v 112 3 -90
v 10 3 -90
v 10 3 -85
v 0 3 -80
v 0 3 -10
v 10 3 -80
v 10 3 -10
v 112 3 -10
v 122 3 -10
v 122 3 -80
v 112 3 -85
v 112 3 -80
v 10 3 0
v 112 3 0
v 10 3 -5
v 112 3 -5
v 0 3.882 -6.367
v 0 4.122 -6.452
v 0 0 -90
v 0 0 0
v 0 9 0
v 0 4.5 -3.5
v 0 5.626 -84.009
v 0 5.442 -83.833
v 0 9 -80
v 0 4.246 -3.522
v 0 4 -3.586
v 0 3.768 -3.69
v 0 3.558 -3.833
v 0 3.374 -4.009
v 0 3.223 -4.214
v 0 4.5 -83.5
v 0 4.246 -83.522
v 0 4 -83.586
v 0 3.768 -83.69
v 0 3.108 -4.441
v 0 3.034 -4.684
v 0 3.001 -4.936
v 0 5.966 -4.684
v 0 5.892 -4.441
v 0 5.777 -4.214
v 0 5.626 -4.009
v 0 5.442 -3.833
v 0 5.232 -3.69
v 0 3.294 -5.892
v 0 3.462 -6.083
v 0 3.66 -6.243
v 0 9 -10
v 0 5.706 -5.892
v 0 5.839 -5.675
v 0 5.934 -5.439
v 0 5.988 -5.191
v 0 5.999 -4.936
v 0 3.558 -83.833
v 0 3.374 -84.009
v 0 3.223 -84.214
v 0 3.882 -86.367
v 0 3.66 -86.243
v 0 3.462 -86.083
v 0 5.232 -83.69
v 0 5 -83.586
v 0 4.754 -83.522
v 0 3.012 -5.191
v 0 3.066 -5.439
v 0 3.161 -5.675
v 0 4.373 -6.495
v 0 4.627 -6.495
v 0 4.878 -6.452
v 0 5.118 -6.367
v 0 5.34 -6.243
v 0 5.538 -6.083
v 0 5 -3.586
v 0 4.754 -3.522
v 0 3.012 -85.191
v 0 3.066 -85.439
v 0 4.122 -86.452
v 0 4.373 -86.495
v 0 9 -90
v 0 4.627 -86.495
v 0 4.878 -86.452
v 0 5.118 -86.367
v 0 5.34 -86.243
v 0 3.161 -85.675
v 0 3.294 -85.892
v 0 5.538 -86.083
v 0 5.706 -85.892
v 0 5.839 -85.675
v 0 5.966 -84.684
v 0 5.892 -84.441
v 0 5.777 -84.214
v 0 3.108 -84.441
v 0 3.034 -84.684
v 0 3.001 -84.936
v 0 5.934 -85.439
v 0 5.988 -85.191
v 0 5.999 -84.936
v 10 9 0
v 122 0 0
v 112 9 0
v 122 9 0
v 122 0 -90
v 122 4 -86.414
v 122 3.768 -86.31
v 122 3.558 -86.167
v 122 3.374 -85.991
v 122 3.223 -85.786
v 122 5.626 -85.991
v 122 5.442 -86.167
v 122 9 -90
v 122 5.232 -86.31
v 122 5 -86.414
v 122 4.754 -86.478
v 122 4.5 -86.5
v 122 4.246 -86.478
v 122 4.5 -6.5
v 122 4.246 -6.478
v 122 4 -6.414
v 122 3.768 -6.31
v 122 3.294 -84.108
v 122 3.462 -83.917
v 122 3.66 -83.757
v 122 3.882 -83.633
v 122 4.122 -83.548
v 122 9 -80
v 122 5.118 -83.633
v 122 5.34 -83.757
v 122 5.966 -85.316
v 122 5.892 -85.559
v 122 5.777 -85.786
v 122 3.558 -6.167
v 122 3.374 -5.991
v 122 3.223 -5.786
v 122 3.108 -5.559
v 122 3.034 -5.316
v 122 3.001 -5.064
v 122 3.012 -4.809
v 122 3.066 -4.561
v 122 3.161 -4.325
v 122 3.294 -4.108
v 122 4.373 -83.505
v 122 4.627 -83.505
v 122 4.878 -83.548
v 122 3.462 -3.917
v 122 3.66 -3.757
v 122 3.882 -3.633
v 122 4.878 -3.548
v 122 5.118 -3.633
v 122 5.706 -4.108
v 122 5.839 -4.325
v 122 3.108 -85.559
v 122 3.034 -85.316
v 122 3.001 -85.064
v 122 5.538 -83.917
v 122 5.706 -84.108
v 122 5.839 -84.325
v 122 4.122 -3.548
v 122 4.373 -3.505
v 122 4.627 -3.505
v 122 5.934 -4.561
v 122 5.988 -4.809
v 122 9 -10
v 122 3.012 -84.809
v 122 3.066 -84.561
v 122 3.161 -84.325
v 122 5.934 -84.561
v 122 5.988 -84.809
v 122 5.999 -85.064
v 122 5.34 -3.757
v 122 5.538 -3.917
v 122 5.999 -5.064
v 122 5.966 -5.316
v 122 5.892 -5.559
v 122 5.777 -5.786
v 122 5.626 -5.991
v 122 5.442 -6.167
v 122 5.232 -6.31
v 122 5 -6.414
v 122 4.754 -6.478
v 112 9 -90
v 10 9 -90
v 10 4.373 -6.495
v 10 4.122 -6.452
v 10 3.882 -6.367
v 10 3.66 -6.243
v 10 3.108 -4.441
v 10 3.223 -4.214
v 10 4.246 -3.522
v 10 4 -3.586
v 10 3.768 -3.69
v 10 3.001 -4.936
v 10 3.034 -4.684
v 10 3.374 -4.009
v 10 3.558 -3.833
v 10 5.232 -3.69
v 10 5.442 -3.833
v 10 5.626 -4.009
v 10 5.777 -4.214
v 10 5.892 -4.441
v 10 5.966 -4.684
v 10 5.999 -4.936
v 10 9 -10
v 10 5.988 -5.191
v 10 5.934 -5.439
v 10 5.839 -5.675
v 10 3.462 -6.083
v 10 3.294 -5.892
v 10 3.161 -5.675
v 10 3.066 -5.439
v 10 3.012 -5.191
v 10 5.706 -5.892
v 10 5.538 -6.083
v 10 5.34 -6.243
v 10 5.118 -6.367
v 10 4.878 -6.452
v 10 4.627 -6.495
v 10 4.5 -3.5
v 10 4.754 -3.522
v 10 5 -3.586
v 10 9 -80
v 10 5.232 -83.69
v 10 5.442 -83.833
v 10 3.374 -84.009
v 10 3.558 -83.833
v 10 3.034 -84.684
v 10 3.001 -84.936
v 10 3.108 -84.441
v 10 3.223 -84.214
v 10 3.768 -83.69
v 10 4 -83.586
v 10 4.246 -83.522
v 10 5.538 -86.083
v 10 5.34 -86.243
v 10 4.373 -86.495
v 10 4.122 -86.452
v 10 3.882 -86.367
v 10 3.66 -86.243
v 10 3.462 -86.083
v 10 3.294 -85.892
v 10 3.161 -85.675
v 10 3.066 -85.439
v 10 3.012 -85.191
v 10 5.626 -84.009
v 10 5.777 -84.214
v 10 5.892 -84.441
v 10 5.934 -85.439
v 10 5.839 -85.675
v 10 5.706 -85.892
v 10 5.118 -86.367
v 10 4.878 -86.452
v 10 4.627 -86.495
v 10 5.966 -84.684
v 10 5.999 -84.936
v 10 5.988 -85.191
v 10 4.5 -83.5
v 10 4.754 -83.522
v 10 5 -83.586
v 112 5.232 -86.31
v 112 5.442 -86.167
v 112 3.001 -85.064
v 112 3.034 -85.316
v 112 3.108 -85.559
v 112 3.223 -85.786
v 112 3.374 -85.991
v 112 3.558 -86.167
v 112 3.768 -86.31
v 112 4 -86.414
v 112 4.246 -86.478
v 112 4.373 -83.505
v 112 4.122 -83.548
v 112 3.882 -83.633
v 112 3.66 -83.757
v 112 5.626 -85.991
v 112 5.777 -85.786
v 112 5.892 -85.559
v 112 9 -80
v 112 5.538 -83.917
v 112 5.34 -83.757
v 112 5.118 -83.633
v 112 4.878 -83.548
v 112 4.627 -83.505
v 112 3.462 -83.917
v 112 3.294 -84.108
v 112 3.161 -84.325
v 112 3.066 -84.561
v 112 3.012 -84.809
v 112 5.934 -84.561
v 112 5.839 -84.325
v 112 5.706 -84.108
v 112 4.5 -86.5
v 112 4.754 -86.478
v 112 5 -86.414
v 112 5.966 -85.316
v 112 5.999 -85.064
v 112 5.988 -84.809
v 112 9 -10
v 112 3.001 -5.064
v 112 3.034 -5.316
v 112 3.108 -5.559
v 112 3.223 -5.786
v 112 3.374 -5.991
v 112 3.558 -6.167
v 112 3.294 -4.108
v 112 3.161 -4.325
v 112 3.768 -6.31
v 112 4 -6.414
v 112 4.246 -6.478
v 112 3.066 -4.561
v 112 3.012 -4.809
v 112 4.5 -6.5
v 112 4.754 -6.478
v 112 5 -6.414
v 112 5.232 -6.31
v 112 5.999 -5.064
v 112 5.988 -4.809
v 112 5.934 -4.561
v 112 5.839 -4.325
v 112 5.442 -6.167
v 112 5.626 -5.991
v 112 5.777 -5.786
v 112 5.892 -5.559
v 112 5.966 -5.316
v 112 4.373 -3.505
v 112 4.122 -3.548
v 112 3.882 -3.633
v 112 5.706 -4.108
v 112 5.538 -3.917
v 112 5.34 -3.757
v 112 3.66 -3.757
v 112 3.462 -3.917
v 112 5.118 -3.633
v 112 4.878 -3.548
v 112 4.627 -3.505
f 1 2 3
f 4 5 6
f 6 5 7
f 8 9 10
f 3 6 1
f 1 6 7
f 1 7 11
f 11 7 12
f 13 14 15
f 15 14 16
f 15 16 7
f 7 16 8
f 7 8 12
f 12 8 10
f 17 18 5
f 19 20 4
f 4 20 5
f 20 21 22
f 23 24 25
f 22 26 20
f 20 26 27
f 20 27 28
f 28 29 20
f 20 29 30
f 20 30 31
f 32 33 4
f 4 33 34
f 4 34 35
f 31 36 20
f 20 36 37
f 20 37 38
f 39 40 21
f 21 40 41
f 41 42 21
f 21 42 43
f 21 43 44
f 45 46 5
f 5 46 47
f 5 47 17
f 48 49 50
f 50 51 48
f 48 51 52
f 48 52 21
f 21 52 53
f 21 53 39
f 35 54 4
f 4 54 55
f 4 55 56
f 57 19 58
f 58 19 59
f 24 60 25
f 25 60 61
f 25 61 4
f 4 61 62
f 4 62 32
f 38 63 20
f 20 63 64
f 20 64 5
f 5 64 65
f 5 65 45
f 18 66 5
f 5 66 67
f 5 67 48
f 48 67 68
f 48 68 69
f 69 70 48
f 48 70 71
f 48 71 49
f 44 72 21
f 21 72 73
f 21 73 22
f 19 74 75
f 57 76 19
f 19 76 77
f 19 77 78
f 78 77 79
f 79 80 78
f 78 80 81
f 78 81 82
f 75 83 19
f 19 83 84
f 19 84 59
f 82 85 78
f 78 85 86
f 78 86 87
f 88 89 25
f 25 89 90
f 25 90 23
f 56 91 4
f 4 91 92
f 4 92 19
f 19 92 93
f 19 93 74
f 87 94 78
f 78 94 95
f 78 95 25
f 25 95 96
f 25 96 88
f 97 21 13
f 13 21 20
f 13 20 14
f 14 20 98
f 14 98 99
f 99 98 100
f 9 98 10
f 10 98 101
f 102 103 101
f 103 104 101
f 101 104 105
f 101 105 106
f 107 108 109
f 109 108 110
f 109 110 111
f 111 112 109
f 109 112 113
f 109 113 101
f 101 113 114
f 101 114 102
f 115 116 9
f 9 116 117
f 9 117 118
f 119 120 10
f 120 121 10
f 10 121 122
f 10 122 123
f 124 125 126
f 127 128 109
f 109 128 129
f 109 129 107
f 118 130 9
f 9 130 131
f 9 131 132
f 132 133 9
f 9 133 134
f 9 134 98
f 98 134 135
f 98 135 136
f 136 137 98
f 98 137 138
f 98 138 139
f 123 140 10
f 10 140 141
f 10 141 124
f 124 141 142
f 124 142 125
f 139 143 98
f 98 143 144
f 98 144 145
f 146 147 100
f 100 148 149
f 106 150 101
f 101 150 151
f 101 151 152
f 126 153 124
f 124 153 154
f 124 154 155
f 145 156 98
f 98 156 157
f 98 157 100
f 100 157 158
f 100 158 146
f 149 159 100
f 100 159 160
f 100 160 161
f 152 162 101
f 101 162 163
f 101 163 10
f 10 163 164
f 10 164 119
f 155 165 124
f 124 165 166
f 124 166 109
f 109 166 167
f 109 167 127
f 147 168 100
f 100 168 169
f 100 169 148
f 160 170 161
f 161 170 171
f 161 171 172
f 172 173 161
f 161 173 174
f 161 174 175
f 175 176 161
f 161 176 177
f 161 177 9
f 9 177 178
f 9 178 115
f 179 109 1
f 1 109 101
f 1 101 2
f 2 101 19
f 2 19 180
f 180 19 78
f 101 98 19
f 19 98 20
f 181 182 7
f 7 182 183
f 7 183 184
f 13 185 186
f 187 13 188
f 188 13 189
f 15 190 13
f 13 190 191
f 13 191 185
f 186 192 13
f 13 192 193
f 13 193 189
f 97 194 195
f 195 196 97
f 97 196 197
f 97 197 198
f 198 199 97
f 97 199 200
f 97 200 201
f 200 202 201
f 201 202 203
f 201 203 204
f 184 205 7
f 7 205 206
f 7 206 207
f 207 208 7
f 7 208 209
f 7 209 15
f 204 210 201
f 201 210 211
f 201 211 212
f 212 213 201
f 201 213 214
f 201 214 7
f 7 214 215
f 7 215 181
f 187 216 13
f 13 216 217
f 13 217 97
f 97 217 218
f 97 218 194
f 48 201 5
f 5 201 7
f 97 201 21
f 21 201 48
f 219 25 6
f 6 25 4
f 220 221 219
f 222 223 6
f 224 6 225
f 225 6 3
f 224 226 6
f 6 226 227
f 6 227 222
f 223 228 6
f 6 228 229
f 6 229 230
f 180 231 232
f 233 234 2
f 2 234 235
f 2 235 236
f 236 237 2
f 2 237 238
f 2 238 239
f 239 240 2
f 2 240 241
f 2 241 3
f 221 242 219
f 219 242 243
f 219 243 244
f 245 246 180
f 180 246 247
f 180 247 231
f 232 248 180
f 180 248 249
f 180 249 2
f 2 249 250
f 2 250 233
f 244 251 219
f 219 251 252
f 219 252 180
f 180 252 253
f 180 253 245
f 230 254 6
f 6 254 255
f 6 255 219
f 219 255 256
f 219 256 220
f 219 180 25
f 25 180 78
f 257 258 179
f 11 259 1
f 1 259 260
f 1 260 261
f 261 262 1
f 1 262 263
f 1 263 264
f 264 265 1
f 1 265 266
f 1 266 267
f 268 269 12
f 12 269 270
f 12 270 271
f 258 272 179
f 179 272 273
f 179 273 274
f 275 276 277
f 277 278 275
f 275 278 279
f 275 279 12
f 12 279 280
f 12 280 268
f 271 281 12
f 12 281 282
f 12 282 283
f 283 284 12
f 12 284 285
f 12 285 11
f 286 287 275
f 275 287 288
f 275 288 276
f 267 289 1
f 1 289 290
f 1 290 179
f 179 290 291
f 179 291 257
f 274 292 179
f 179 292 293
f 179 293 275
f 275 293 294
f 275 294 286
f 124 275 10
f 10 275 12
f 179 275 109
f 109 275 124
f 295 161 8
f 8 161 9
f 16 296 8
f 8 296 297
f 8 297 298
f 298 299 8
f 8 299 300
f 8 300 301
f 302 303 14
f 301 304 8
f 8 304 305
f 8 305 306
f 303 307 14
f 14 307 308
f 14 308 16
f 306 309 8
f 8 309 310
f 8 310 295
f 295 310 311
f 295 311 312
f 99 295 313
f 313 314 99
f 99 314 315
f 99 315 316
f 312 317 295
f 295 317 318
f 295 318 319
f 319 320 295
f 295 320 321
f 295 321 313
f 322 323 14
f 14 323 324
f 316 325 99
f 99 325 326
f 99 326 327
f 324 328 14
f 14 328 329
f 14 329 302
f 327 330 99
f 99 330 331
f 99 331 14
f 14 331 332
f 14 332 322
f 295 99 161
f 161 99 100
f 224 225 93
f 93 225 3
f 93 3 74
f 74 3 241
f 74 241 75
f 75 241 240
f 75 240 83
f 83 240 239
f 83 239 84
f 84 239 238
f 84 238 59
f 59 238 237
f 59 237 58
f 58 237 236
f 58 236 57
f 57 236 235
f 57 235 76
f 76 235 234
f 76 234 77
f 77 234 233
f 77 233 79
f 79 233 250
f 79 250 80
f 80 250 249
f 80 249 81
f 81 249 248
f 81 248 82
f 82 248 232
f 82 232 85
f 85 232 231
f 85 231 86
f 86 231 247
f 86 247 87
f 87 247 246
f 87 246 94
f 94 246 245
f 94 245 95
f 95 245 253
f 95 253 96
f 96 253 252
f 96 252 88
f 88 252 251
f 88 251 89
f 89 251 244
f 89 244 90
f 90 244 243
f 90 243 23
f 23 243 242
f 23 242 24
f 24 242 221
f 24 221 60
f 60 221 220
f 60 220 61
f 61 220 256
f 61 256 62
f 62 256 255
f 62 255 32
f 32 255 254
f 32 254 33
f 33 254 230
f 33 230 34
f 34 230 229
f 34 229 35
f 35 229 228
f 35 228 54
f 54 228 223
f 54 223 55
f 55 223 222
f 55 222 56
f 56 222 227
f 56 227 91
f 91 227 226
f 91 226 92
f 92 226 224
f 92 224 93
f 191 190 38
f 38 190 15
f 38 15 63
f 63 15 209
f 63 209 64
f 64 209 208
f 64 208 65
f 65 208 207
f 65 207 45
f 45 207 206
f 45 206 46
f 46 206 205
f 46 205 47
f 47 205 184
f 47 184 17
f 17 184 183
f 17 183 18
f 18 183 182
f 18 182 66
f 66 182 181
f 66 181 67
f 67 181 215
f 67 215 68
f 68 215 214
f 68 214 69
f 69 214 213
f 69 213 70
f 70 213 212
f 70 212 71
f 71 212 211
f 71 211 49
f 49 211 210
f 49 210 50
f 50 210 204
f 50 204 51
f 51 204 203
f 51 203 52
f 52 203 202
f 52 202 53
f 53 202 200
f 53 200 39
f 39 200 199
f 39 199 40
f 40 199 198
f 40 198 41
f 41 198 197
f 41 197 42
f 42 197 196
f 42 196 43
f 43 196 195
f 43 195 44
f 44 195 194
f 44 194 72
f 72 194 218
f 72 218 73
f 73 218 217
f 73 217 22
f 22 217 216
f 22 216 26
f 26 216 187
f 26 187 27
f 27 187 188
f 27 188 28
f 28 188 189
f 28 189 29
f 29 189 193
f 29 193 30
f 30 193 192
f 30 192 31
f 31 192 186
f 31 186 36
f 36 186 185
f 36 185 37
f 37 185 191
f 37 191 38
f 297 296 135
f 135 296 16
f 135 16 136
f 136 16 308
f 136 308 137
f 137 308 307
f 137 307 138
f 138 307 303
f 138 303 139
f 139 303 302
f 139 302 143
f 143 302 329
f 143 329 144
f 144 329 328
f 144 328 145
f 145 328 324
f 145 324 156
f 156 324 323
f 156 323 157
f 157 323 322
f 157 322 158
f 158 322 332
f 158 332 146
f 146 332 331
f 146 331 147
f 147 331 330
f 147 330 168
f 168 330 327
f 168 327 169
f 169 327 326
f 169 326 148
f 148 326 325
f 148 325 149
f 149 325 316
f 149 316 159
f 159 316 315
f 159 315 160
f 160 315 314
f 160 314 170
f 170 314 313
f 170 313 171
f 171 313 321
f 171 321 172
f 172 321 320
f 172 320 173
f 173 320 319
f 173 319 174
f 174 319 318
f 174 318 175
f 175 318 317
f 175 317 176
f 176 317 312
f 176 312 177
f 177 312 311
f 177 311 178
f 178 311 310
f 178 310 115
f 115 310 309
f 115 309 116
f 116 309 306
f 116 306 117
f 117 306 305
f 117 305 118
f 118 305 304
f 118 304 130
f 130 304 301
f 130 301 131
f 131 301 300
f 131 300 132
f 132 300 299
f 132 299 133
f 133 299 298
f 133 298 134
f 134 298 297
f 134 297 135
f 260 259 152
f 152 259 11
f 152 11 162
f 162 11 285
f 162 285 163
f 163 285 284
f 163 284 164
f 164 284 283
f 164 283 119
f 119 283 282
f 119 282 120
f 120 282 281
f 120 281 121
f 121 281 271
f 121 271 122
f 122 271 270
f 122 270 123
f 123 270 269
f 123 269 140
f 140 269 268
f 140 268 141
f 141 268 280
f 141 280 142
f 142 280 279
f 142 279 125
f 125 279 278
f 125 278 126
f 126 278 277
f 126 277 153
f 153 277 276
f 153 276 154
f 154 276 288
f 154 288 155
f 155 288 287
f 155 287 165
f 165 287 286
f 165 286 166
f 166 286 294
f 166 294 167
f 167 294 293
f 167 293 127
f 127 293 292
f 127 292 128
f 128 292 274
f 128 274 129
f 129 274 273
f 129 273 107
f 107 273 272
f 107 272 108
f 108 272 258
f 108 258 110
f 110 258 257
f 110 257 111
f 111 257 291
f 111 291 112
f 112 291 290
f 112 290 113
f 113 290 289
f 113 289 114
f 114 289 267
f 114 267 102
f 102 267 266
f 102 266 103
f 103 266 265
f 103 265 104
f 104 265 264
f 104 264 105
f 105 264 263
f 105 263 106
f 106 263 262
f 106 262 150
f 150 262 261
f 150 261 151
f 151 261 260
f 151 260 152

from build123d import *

# Parameters (mm, degrees)
SKETCH1_W           = 122
SKETCH1_H           = 90
BOSS_EXTRUDE1_DEPTH = 3
SKETCH2_W           = 10
SKETCH2_H           = 10
BOSS_EXTRUDE2_DEPTH = 6
CUT_EXTRUDE2_REACH  = 153.872
SKETCH4_R           = 1.5
CUT_EXTRUDE3_REACH  = 153.872
SKETCH5_R           = 1.5


with BuildPart() as part:
    # Sketch1 → Boss-Extrude1 (new body)
    with BuildSketch(Plane(origin=(0, 0, 0), x_dir=(1, 0, 0), z_dir=(0, 1, 0))):
        with Locations((61, 45)):
            Rectangle(SKETCH1_W, SKETCH1_H)
    extrude(amount=BOSS_EXTRUDE1_DEPTH)

    # Sketch2 → Boss-Extrude2 (add)
    with BuildSketch(Plane(origin=(0, 3, 0), x_dir=(1, 0, 0), z_dir=(0, 1, 0))):
        Polygon((0, 0), (10, 0), (10, 5.706645394), (10, 10), (7.781127404, 10), (0, 10), align=None)
        with Locations((5, 85)):
            Rectangle(SKETCH2_W, SKETCH2_H)
        with Locations((117, 85)):
            Rectangle(SKETCH2_W, SKETCH2_H)
        with Locations((117, 5)):
            Rectangle(SKETCH2_W, SKETCH2_H)
    extrude(amount=BOSS_EXTRUDE2_DEPTH)

    # Sketch4 → Cut-Extrude2 (cut, up to next)
    with BuildSketch(Plane.ZY, mode=Mode.PRIVATE) as cut_extrude2_sk1:
        with Locations((-85, 4.5)):
            Circle(SKETCH4_R)
    cut_extrude2_tool1 = extrude(cut_extrude2_sk1.sketch, amount=-CUT_EXTRUDE2_REACH, mode=Mode.PRIVATE) & part.part
    # Sketch4 → Cut-Extrude2 (cut, up to next)
    with BuildSketch(Plane.ZY, mode=Mode.PRIVATE) as cut_extrude2_sk2:
        with Locations((-5, 4.5)):
            Circle(SKETCH4_R)
    cut_extrude2_tool2 = extrude(cut_extrude2_sk2.sketch, amount=-CUT_EXTRUDE2_REACH, mode=Mode.PRIVATE) & part.part
    add(cut_extrude2_tool1.solids().sort_by_distance((0, 4.5, -85))[0], mode=Mode.SUBTRACT)
    add(cut_extrude2_tool2.solids().sort_by_distance((0, 4.5, -5))[0], mode=Mode.SUBTRACT)

    # Sketch5 → Cut-Extrude3 (cut, up to next)
    with BuildSketch(Plane(origin=(122, 0, 0), x_dir=(0, 0, -1), z_dir=(1, 0, 0)), mode=Mode.PRIVATE) as cut_extrude3_sk1:
        with Locations(Location((85, 4.5, 0), (0, 0, 180))):
            Circle(SKETCH5_R)
    cut_extrude3_tool1 = extrude(cut_extrude3_sk1.sketch, amount=-CUT_EXTRUDE3_REACH, mode=Mode.PRIVATE) & part.part
    # Sketch5 → Cut-Extrude3 (cut, up to next)
    with BuildSketch(Plane(origin=(122, 0, 0), x_dir=(0, 0, -1), z_dir=(1, 0, 0)), mode=Mode.PRIVATE) as cut_extrude3_sk2:
        with Locations(Location((5, 4.5, 0), (0, 0, 180))):
            Circle(SKETCH5_R)
    cut_extrude3_tool2 = extrude(cut_extrude3_sk2.sketch, amount=-CUT_EXTRUDE3_REACH, mode=Mode.PRIVATE) & part.part
    add(cut_extrude3_tool1.solids().sort_by_distance((122, 4.5, -85))[0], mode=Mode.SUBTRACT)
    add(cut_extrude3_tool2.solids().sort_by_distance((122, 4.5, -5))[0], mode=Mode.SUBTRACT)


solid = part.part
